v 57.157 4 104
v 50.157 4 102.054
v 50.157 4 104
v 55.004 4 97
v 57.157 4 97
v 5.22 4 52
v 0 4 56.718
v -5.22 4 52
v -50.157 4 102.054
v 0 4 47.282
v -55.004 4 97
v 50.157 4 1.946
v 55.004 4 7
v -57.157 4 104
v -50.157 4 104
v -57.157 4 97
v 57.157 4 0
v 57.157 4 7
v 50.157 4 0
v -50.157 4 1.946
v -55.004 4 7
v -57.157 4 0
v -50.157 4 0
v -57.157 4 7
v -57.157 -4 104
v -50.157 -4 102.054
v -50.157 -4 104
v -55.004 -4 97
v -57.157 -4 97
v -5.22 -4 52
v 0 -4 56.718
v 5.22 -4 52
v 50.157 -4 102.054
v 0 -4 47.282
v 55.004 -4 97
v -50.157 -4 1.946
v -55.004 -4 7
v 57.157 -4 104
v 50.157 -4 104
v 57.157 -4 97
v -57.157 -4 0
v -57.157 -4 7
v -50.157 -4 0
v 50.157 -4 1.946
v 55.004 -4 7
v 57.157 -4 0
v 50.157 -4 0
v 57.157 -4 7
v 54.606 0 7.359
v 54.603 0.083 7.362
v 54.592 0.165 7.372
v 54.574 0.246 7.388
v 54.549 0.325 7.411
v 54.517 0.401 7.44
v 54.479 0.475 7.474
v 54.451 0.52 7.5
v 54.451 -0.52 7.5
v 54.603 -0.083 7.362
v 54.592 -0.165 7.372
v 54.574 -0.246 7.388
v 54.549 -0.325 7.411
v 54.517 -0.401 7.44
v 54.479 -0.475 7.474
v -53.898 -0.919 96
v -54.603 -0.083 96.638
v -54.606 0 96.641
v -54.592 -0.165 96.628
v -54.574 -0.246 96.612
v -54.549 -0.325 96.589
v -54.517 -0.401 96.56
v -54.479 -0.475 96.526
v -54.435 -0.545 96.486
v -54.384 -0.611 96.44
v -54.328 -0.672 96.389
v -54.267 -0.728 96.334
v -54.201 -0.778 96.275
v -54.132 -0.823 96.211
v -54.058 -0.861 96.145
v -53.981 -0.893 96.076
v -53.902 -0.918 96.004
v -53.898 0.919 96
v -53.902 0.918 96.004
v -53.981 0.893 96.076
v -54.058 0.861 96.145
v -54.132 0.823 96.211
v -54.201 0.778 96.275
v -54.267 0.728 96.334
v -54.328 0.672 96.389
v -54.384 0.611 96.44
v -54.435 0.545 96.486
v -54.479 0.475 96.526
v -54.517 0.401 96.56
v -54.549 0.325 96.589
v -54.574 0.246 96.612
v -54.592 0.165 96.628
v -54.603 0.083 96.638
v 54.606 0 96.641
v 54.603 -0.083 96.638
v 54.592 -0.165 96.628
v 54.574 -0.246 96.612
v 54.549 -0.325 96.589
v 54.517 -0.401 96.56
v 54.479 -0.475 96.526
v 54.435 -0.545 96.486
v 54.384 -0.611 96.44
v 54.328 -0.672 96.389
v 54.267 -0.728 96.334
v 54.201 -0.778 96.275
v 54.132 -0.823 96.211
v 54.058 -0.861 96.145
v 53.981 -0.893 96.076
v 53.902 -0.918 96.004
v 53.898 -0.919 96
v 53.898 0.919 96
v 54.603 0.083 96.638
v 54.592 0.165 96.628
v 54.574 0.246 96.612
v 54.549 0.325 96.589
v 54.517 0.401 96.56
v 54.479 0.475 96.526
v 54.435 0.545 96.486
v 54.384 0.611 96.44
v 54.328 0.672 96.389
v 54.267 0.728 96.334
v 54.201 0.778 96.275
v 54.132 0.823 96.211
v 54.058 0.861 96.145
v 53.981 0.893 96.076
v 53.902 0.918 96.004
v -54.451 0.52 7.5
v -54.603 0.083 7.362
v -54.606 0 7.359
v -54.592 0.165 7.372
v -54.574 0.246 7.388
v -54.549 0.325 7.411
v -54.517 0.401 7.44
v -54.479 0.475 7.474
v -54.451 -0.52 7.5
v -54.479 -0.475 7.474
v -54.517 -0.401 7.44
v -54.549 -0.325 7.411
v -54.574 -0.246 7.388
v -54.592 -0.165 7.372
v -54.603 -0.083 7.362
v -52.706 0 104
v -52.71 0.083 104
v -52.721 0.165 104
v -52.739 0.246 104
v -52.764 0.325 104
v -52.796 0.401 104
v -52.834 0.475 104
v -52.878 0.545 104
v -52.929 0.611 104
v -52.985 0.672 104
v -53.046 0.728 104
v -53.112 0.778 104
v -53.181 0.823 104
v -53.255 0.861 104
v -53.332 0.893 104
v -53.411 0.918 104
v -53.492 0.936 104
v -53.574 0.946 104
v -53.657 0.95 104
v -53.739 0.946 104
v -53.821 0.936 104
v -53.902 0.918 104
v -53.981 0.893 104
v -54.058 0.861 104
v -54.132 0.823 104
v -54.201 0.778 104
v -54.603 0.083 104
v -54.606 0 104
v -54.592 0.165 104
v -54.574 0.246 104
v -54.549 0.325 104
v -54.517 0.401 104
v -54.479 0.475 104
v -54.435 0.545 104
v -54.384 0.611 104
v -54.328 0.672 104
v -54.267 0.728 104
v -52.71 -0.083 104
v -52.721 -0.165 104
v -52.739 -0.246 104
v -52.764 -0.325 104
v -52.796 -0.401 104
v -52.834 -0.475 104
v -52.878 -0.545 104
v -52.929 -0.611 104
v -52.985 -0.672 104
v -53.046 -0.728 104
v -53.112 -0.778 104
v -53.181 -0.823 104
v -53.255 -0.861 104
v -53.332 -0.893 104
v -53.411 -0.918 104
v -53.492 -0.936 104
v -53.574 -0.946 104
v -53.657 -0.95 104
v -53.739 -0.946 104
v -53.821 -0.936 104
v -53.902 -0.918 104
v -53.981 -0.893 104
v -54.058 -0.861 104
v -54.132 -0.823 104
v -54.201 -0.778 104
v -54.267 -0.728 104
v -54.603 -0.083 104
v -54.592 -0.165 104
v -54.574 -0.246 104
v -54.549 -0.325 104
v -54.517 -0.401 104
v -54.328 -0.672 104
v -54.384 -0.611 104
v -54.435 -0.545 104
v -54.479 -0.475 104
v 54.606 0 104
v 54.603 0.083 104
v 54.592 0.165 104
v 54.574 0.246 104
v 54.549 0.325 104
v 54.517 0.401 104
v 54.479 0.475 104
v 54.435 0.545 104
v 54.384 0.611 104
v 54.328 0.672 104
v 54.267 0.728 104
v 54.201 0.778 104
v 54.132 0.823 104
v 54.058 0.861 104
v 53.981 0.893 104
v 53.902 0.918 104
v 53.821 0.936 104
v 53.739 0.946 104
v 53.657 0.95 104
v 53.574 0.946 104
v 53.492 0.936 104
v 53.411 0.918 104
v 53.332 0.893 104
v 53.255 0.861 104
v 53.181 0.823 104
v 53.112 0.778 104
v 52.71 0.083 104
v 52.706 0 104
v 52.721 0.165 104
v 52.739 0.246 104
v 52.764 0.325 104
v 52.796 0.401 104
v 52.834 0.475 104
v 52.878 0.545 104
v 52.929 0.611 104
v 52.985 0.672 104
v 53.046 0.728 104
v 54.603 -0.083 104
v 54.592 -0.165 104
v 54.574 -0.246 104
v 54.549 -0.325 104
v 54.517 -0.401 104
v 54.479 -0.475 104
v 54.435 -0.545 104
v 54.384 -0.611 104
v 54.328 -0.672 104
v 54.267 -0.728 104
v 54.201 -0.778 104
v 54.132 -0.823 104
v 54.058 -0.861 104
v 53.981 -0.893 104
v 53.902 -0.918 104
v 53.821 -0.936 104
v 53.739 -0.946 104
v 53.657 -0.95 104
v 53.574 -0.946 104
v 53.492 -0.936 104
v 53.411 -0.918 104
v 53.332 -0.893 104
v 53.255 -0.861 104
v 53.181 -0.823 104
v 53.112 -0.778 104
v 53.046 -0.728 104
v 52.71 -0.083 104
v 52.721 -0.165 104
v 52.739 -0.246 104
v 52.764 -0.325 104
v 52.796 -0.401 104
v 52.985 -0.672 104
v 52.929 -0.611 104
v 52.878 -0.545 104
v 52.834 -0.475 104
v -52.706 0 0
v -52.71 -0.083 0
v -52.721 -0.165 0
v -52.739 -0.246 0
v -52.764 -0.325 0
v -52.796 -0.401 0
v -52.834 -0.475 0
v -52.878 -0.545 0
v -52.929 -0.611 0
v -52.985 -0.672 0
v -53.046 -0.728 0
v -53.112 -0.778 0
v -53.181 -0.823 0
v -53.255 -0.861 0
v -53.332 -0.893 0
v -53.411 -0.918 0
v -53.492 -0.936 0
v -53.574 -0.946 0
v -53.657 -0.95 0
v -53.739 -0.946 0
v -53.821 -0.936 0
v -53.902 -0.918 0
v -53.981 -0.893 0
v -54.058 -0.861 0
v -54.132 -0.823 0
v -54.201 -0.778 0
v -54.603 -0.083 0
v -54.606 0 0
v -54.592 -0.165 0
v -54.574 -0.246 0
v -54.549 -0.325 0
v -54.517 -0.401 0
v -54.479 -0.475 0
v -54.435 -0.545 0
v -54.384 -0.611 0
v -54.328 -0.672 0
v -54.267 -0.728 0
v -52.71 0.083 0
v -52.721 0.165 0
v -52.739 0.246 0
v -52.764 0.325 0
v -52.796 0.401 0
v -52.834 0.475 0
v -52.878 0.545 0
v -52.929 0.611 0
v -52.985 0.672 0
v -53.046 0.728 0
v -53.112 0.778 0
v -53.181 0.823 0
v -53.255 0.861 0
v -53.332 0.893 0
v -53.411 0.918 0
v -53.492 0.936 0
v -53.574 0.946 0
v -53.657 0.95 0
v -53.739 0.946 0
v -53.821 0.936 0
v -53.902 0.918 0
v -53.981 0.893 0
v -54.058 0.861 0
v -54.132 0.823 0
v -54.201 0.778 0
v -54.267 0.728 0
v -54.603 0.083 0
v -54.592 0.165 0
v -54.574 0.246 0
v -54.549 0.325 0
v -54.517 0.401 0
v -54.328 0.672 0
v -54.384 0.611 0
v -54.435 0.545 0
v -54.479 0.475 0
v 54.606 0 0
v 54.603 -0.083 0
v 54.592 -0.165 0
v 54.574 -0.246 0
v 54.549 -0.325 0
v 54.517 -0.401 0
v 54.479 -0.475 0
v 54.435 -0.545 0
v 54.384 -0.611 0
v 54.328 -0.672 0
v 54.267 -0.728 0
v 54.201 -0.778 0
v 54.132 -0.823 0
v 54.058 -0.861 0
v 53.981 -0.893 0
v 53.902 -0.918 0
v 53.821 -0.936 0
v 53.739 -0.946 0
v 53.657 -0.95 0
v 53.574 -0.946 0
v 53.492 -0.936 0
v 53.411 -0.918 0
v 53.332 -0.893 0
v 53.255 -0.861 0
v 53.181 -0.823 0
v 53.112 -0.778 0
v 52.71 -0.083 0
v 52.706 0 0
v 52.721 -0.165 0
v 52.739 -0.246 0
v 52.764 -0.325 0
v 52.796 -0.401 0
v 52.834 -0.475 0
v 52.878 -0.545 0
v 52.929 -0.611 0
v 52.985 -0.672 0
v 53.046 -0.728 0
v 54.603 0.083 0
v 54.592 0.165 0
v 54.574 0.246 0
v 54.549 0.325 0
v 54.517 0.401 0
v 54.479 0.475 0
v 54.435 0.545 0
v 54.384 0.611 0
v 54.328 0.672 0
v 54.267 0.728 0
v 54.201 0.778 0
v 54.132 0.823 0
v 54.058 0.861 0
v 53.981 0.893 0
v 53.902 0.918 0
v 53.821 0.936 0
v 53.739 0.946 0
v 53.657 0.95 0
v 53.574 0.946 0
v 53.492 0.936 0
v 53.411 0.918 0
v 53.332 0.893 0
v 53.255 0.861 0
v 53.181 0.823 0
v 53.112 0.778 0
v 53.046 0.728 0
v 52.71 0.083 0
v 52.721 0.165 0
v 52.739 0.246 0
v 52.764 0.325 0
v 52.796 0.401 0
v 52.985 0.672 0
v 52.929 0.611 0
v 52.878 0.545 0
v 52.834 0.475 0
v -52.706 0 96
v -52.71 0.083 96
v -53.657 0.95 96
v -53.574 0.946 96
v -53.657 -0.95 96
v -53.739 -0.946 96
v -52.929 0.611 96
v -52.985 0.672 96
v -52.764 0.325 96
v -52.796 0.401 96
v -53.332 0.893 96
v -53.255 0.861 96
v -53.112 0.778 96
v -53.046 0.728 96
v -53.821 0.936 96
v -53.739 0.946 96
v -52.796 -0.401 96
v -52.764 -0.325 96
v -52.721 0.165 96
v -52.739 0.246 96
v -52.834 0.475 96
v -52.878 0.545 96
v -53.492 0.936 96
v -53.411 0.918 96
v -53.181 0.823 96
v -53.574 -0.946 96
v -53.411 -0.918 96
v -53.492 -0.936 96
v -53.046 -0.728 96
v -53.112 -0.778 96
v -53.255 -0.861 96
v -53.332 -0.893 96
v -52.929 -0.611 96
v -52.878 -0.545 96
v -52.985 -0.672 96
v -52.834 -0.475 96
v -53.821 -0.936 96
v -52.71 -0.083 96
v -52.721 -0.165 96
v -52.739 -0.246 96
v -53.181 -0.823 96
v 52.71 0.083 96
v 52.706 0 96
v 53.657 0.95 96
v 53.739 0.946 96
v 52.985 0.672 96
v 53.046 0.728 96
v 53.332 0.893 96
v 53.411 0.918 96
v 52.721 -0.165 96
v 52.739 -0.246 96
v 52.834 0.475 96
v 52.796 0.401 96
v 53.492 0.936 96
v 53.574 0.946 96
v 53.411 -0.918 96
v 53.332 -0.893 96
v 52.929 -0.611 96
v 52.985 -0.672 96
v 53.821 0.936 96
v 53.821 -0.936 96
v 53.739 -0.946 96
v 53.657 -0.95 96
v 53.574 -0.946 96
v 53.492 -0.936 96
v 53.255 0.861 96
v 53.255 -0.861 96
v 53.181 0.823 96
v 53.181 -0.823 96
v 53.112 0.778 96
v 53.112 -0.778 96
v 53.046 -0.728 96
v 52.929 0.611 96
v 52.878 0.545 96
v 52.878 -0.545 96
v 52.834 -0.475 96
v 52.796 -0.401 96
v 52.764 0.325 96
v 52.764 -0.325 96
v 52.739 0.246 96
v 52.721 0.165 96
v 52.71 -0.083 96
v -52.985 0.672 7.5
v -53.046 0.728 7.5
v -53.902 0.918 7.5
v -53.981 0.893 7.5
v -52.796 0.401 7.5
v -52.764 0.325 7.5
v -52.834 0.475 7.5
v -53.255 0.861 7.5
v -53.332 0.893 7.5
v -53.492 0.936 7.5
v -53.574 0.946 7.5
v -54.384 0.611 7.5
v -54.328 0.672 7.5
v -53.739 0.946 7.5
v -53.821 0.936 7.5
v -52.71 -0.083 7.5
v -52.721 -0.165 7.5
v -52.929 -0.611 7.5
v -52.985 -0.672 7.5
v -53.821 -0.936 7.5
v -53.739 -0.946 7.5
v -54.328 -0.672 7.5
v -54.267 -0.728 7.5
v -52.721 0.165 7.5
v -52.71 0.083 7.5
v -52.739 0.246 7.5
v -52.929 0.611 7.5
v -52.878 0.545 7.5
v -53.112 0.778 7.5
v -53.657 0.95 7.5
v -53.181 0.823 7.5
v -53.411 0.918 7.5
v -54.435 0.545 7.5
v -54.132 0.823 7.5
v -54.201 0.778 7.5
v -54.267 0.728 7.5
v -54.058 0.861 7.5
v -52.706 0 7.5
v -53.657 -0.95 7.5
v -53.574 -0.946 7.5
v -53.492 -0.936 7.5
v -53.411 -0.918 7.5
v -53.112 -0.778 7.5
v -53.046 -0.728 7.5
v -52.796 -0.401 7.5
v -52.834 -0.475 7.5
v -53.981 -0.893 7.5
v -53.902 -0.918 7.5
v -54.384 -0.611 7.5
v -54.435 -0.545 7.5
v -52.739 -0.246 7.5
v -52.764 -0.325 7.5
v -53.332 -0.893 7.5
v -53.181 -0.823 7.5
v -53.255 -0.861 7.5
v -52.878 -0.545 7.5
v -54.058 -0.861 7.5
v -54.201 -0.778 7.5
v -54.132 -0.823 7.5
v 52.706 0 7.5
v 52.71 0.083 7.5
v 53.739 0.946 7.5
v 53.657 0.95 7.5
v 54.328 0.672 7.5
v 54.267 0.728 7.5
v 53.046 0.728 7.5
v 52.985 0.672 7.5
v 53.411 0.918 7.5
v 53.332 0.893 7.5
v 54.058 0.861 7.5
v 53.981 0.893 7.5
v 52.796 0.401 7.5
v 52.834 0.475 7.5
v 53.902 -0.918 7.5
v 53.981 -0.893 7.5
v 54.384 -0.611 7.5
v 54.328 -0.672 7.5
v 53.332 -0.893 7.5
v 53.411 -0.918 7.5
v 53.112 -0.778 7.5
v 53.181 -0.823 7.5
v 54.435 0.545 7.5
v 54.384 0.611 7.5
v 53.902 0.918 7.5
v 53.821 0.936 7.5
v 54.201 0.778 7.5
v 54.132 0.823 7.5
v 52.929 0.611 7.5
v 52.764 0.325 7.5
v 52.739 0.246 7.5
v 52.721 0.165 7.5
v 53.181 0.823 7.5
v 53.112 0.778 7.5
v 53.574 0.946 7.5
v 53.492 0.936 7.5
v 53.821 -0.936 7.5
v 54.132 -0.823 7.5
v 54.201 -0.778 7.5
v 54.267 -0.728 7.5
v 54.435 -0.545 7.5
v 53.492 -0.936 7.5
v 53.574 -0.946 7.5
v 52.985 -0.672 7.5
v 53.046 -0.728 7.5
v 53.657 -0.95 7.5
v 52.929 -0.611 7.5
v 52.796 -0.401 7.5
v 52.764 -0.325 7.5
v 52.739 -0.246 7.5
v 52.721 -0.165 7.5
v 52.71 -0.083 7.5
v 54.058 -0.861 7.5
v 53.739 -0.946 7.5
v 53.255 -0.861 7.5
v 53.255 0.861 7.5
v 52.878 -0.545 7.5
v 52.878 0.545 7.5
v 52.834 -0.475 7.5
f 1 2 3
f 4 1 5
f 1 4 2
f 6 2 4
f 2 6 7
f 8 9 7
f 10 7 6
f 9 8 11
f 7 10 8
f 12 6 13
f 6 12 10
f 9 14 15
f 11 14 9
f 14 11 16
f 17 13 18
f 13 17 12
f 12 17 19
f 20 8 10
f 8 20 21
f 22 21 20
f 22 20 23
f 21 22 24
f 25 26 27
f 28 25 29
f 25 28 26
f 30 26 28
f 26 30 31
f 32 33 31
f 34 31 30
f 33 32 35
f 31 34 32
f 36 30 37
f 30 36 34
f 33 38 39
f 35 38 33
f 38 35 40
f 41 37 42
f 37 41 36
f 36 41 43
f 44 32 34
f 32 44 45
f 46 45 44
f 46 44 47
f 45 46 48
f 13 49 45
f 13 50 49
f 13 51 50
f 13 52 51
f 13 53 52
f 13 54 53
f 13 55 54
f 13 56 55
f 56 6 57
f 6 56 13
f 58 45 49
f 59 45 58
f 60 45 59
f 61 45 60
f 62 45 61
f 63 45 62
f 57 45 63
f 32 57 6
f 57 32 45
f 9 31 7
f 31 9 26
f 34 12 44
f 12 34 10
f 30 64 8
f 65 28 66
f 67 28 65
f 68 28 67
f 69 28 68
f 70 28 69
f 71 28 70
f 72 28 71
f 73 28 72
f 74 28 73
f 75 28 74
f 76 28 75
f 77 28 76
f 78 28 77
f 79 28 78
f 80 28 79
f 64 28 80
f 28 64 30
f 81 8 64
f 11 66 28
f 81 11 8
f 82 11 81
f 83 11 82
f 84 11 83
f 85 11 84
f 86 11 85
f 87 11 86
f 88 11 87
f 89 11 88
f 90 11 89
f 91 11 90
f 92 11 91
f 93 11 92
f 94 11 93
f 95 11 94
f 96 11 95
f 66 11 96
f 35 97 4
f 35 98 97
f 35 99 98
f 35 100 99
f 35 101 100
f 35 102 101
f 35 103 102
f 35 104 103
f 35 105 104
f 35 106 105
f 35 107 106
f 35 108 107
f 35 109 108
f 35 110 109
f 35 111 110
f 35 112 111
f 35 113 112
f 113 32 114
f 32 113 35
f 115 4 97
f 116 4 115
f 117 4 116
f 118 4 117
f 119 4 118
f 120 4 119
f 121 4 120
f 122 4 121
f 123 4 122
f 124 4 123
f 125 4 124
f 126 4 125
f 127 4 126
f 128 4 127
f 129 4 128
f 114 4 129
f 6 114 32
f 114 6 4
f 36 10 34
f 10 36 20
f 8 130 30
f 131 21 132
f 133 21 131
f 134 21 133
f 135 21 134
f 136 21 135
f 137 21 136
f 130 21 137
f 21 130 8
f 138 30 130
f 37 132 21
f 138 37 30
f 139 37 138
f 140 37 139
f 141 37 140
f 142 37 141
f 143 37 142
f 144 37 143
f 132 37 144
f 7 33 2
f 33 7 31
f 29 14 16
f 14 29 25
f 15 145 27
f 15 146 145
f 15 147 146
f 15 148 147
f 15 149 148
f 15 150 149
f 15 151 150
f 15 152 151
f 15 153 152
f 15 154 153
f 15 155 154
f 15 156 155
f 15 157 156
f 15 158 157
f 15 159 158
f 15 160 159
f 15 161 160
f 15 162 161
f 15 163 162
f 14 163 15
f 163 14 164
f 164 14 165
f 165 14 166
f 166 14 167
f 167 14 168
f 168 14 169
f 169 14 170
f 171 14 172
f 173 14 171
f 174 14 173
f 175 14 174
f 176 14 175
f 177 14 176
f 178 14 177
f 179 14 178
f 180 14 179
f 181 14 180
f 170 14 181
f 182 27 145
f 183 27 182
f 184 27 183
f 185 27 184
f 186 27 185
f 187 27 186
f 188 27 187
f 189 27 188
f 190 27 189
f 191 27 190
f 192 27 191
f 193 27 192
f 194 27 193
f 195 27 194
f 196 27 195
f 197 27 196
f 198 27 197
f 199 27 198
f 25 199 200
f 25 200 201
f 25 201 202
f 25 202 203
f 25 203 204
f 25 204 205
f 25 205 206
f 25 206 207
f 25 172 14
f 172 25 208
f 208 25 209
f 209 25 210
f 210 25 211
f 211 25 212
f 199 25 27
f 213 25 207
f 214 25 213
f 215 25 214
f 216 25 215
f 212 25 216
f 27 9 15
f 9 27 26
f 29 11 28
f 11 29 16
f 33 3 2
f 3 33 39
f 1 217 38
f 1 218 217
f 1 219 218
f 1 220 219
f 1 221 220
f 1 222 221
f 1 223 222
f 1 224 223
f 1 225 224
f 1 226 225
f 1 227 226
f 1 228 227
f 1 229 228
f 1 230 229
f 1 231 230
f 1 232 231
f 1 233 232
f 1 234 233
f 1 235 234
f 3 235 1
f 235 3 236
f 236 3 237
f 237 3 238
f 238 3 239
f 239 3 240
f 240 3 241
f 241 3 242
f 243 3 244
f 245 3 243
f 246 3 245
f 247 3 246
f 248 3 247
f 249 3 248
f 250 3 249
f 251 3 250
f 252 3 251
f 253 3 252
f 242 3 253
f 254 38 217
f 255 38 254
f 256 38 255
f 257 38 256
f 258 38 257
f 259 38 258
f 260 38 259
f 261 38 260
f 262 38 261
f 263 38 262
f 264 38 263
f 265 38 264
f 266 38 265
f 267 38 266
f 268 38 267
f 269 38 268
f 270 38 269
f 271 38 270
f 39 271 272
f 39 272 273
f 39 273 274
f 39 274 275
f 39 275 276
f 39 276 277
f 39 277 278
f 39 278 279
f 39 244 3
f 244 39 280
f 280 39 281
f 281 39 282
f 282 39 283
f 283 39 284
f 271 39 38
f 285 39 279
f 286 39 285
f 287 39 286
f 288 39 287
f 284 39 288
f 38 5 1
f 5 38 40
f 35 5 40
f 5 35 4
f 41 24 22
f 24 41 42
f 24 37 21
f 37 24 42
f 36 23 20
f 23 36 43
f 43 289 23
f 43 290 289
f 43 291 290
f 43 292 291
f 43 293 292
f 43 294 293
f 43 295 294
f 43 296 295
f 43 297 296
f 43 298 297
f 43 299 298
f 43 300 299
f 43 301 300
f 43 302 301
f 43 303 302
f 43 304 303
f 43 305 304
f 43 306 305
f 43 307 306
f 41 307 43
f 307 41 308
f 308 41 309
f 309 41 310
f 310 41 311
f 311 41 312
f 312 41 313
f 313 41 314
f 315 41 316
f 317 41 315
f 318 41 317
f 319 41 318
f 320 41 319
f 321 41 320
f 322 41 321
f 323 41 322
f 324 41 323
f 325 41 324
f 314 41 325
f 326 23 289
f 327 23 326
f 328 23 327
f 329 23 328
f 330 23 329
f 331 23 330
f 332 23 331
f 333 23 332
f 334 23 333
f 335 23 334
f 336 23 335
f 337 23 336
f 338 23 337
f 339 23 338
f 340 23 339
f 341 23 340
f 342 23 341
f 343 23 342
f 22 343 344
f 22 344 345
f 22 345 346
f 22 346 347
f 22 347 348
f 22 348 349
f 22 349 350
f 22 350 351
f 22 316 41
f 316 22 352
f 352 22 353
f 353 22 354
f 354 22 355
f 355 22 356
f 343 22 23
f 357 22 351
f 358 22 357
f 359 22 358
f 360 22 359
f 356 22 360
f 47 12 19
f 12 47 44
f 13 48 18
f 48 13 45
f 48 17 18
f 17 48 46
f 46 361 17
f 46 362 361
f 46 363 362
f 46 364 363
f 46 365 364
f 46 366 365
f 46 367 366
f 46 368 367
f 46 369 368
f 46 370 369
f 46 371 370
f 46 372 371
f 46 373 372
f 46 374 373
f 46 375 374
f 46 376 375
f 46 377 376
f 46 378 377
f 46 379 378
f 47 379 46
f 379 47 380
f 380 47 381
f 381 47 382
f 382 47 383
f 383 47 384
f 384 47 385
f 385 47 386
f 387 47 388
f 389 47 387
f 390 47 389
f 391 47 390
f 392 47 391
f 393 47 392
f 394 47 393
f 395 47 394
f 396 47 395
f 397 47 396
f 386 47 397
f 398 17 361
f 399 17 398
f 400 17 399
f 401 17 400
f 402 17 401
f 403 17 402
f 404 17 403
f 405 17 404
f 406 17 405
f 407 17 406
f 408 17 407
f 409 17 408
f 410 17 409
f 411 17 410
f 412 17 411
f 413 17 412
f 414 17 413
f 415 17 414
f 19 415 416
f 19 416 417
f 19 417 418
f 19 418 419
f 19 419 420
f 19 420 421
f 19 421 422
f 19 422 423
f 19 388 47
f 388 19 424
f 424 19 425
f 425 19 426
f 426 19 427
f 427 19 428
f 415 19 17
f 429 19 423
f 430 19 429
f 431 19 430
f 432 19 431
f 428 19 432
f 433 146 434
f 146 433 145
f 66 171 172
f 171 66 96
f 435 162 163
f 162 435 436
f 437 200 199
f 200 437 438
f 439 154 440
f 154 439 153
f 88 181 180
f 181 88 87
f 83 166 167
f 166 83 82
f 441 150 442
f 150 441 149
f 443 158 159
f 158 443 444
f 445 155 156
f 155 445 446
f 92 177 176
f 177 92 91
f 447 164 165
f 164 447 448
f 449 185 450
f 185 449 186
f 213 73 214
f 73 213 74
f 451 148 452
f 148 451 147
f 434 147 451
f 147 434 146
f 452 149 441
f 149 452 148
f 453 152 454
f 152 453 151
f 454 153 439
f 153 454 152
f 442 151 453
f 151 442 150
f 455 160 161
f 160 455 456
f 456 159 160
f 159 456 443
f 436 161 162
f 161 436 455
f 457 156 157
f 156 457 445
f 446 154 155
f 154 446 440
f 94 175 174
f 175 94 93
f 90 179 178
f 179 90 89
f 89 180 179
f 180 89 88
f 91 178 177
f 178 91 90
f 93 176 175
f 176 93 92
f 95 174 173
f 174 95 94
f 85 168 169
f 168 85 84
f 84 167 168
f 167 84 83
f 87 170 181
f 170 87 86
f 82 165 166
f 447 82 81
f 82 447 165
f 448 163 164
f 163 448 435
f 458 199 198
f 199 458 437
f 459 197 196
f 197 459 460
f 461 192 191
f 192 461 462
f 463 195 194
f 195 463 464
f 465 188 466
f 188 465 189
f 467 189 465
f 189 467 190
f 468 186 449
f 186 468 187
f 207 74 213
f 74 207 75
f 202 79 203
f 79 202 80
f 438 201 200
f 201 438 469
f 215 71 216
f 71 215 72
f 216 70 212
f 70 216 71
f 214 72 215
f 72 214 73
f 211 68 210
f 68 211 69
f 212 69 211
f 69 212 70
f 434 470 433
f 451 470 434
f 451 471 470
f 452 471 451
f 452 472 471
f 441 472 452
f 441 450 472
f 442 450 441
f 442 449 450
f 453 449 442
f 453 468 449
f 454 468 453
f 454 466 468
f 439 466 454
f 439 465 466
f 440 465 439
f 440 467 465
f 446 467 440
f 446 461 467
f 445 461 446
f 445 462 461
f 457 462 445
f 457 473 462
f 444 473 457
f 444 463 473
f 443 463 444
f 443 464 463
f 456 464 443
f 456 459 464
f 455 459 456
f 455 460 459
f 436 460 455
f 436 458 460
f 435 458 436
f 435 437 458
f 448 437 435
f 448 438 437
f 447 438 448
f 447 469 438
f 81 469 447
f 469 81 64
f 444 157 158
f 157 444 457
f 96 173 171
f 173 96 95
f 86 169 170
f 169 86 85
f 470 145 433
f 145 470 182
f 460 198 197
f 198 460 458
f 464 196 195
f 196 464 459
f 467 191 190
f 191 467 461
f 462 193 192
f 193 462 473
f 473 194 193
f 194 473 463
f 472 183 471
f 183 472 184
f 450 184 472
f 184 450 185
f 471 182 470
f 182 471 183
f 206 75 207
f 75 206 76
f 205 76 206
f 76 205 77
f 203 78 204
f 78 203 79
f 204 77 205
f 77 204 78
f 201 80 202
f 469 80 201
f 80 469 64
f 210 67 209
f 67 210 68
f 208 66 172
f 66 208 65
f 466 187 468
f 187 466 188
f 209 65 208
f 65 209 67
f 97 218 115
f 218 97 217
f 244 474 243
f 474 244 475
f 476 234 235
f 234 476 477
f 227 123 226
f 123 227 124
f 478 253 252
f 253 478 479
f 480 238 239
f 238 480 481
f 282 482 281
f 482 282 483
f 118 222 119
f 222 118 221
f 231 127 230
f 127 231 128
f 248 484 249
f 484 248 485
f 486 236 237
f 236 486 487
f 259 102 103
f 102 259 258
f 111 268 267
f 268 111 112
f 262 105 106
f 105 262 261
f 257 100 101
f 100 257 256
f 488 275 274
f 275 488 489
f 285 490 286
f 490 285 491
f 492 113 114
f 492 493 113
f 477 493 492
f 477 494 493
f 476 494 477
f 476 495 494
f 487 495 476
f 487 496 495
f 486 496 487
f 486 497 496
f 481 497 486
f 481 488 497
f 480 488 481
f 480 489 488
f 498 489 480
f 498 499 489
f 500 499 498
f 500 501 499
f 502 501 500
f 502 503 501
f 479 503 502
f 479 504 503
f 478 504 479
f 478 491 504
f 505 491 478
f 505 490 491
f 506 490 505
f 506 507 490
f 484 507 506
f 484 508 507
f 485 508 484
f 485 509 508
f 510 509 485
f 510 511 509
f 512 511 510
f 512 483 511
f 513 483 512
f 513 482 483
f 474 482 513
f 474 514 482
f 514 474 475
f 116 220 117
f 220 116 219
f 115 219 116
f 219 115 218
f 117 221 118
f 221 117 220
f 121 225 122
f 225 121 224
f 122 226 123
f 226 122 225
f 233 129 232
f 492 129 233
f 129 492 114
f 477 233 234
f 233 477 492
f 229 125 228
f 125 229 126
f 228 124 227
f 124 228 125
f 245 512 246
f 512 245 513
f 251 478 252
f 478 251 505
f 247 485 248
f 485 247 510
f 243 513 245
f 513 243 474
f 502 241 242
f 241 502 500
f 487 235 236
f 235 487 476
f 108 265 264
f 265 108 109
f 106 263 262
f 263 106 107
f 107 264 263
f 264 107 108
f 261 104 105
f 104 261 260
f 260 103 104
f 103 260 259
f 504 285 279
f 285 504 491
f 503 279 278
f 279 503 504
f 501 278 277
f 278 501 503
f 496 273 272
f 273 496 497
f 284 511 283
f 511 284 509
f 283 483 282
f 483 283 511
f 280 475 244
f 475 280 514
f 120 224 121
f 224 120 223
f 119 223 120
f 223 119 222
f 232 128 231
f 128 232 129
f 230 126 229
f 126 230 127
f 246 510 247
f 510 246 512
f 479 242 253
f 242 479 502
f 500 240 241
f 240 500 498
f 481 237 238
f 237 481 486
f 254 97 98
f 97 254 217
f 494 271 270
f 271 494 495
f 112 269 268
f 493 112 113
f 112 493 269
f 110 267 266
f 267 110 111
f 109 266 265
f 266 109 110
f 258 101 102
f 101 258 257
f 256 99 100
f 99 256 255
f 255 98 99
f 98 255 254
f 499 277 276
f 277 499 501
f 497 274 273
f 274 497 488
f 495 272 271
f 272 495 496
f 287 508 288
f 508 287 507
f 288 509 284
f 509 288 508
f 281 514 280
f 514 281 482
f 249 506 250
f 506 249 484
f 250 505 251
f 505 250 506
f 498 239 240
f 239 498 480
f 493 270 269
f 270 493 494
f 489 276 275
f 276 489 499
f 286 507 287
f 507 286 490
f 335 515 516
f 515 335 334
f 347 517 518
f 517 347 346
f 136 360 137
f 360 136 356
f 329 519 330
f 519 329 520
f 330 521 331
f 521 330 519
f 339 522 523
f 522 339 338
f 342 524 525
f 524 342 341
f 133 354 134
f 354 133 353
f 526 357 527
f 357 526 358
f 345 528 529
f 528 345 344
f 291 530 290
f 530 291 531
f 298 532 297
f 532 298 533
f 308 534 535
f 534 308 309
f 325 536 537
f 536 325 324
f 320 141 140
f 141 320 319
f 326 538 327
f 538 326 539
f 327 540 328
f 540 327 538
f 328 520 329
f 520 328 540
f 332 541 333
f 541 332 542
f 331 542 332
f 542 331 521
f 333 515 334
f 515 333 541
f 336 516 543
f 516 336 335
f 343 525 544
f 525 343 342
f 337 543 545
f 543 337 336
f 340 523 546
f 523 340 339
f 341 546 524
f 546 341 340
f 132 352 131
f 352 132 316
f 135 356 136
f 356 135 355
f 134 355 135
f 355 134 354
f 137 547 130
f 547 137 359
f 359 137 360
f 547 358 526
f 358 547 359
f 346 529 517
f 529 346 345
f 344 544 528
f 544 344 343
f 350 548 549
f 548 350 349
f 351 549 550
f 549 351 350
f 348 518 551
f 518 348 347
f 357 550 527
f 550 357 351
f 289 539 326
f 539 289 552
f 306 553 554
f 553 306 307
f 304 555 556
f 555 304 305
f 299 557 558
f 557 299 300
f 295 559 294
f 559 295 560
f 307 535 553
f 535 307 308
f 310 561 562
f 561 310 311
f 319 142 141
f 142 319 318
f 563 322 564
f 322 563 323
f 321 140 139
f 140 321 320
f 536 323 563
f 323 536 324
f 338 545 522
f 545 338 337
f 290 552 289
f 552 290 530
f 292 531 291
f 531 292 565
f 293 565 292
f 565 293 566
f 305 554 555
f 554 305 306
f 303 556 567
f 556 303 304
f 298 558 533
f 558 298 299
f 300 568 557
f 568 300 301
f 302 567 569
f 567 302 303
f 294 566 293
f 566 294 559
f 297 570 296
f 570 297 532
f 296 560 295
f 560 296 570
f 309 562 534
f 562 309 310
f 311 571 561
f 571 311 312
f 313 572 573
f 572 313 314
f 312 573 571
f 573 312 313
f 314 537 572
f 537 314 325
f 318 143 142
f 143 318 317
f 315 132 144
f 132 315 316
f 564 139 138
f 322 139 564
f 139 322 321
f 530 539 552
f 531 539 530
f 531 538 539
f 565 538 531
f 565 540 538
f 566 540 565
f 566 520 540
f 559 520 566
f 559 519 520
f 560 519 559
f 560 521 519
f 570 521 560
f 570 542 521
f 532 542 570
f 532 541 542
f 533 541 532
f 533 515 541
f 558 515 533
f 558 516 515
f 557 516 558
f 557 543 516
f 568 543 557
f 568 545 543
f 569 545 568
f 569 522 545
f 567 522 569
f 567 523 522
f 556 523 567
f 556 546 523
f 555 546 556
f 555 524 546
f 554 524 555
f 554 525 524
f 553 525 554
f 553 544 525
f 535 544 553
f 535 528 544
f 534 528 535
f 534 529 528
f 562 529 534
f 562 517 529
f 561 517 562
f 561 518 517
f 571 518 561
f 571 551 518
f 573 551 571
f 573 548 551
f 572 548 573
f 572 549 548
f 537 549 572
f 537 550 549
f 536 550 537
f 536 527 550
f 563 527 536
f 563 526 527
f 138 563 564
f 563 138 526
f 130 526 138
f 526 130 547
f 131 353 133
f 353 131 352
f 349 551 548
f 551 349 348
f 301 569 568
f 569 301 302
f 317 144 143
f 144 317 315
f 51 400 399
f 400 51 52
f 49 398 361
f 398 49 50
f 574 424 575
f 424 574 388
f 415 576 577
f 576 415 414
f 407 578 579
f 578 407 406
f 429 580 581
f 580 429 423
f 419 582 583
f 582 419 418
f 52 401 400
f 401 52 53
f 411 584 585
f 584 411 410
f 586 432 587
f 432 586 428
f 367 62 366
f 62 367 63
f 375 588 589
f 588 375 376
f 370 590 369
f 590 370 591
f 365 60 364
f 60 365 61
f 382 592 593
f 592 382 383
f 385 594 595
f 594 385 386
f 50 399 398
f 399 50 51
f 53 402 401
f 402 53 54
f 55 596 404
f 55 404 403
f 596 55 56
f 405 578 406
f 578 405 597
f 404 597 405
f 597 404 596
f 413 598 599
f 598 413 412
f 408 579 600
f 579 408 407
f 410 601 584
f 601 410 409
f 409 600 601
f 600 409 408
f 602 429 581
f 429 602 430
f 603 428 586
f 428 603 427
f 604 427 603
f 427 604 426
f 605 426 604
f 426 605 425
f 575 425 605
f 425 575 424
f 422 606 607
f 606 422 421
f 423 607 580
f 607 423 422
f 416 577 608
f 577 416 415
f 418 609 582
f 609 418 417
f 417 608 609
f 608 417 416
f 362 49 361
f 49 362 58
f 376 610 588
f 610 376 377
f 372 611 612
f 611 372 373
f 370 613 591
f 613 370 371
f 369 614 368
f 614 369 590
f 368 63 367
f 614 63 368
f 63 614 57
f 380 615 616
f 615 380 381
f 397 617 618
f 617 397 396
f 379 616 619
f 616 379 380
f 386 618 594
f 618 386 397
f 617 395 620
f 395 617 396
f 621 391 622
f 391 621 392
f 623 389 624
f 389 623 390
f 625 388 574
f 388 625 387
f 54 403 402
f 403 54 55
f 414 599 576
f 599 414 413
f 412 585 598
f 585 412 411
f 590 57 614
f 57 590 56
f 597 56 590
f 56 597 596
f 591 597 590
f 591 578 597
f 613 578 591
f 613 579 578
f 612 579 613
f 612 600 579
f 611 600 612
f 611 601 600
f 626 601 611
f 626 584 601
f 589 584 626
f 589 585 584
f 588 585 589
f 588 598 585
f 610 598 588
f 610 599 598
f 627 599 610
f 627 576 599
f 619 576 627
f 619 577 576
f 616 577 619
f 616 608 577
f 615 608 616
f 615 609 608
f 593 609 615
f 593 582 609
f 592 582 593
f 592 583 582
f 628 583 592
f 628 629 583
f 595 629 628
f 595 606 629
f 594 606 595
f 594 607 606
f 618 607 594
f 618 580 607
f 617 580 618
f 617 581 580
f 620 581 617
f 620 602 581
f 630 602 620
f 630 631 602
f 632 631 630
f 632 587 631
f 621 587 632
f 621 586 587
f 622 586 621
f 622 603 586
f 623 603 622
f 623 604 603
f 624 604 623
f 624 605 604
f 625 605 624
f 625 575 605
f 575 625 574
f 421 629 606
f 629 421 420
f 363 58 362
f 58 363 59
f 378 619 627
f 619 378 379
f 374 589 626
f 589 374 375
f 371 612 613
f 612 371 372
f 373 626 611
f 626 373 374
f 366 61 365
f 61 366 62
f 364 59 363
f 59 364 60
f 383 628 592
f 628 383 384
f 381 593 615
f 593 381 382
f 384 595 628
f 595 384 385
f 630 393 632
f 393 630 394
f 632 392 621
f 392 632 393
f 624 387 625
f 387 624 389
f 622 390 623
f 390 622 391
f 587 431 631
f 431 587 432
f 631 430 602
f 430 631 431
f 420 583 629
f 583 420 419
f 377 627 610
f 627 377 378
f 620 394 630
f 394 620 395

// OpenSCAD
// OpenSCAD 2021.01 compatible
// Separate X-shaped stilt for the controller module side with only two lugs.
//
// Source for lug spacing: controller_module.scad
// - right_corner_lug_y1 = lug_pad_diameter / 2 = 5.0
// - body_depth = max(80, 80) + lug_spacing + 2*pcb_margin = 117.313
// - right_corner_lug_y2 = body_depth - lug_pad_diameter / 2 = 112.313
// - center-to-center distance = 112.313 - 5.0 = 107.313 mm
//
// Geometry:
// - X-shaped rectangular brace, not V-shaped
// - two top screw-catching pilot holes for the controller module lugs
// - two lower screw-catching pilot holes for later attaching something there
// - top and bottom endpoint stamps are no larger than the rectangular stilt leg itself
// - beam endpoints overlap into the stamps to avoid gaps

$fn = 72;

// -----------------------------
// Main requested values
// -----------------------------
controller_two_lug_spacing = 107.313;  // calculated from controller_module.scad right-side corner lugs
stilt_length               = 104.0;    // requested stilt length / vertical height

// The controller carrier lug holes are clearance holes. This separate stilt must catch screws,
// so use the printed-plastic pilot diameter used by the other standoff features.
screw_clearance_ref_d      = 2.3;      // reference only: clearance through lugs
screw_pilot_d              = 1.9;      // pilot for 2 mm screws to bite into printed plastic

// -----------------------------
// Rectangular X-stilt geometry
// -----------------------------
leg_xz_thickness           = 7.0;      // rectangular leg thickness in X/Z side-view profile
leg_y_width                = 8.0;      // front/back width of the stilt

// Endpoint stamps are intentionally no larger than the leg cross-section.
stamp_x                    = leg_xz_thickness;
stamp_y                    = leg_y_width;
stamp_z                    = leg_xz_thickness;

// Optional screw-head reliefs. Keep disabled for flat screw-contact surfaces.
top_head_relief_enabled    = false;
bottom_head_relief_enabled = false;
head_relief_d              = 4.2;
head_relief_depth          = 1.4;

// Bottom pilot holes can be disabled if you only want the two top holes.
bottom_holes_enabled       = true;

// -----------------------------
// Derived values
// -----------------------------
left_x                     = -controller_two_lug_spacing / 2;
right_x                    =  controller_two_lug_spacing / 2;

bottom_z                   = 0;
top_z                      = stilt_length;

bottom_stamp_bottom_z      = bottom_z;
bottom_stamp_center_z      = bottom_stamp_bottom_z + stamp_z / 2;

top_stamp_bottom_z         = top_z - stamp_z;
top_stamp_center_z         = top_stamp_bottom_z + stamp_z / 2;

// Beam centerlines run into stamp centers, giving positive overlap and no gaps.
// The X consists of two diagonals: left-top to right-bottom, and right-top to left-bottom.

// -----------------------------
// Primitive helpers
// -----------------------------
module box_centered(size_vec) {
    cube(size_vec, center = true);
}

module box_from_bottom(center_x, center_y, bottom_z_pos, size_vec) {
    translate([center_x, center_y, bottom_z_pos + size_vec[2] / 2])
        box_centered(size_vec);
}

function beam_poly_2d(p1, p2, t) =
    let(
        dx = p2[0] - p1[0],
        dz = p2[1] - p1[1],
        l  = sqrt(dx * dx + dz * dz),
        nx = -dz / l * t / 2,
        nz =  dx / l * t / 2
    )
    [
        [p1[0] + nx, p1[1] + nz],
        [p2[0] + nx, p2[1] + nz],
        [p2[0] - nx, p2[1] - nz],
        [p1[0] - nx, p1[1] - nz]
    ];

module xz_profile_extruded_y(profile_points, y_width) {
    // Builds an X/Z side-view polygon and extrudes it across Y.
    // rotate([90,0,0]) maps 2D Y to model Z and extrusion Z to model Y.
    rotate([90, 0, 0])
        linear_extrude(height = y_width, center = true, convexity = 4)
            polygon(points = profile_points);
}

// -----------------------------
// Endpoint stamps and holes
// -----------------------------
module end_stamp(xc, bottom_z_pos) {
    // Same X/Y/Z envelope as the rectangular leg section.
    box_from_bottom(xc, 0, bottom_z_pos, [stamp_x, stamp_y, stamp_z]);
}

module top_pilot_hole(xc) {
    translate([xc, 0, top_stamp_bottom_z - 1])
        cylinder(h = stamp_z + 2, d = screw_pilot_d);

    if (top_head_relief_enabled)
        translate([xc, 0, top_z - head_relief_depth])
            cylinder(h = head_relief_depth + 0.02, d = head_relief_d);
}

module bottom_pilot_hole(xc) {
    if (bottom_holes_enabled) {
        translate([xc, 0, bottom_stamp_bottom_z - 0.5])
            cylinder(h = stamp_z + 1.0, d = screw_pilot_d);

        if (bottom_head_relief_enabled)
            translate([xc, 0, bottom_stamp_bottom_z - 0.01])
                cylinder(h = head_relief_depth + 0.02, d = head_relief_d);
    }
}

// -----------------------------
// X brace geometry
// -----------------------------
module diagonal_beam(p1, p2) {
    xz_profile_extruded_y(
        beam_poly_2d(p1, p2, leg_xz_thickness),
        leg_y_width
    );
}

module x_brace() {
    diagonal_beam([left_x,  top_stamp_center_z],    [right_x, bottom_stamp_center_z]);
    diagonal_beam([right_x, top_stamp_center_z],    [left_x,  bottom_stamp_center_z]);
}

module x_stilt_body_raw() {
    union() {
        // Top stamps: screw-catching connection to the two-lug side of the controller module.
        end_stamp(left_x,  top_stamp_bottom_z);
        end_stamp(right_x, top_stamp_bottom_z);

        // Bottom stamps: same size as the leg, with pilot holes for later attachments.
        end_stamp(left_x,  bottom_stamp_bottom_z);
        end_stamp(right_x, bottom_stamp_bottom_z);

        x_brace();
    }
}

module screw_cutouts() {
    top_pilot_hole(left_x);
    top_pilot_hole(right_x);
    bottom_pilot_hole(left_x);
    bottom_pilot_hole(right_x);
}

module x_stilt() {
    difference() {
        x_stilt_body_raw();
        screw_cutouts();
    }
}

x_stilt();
